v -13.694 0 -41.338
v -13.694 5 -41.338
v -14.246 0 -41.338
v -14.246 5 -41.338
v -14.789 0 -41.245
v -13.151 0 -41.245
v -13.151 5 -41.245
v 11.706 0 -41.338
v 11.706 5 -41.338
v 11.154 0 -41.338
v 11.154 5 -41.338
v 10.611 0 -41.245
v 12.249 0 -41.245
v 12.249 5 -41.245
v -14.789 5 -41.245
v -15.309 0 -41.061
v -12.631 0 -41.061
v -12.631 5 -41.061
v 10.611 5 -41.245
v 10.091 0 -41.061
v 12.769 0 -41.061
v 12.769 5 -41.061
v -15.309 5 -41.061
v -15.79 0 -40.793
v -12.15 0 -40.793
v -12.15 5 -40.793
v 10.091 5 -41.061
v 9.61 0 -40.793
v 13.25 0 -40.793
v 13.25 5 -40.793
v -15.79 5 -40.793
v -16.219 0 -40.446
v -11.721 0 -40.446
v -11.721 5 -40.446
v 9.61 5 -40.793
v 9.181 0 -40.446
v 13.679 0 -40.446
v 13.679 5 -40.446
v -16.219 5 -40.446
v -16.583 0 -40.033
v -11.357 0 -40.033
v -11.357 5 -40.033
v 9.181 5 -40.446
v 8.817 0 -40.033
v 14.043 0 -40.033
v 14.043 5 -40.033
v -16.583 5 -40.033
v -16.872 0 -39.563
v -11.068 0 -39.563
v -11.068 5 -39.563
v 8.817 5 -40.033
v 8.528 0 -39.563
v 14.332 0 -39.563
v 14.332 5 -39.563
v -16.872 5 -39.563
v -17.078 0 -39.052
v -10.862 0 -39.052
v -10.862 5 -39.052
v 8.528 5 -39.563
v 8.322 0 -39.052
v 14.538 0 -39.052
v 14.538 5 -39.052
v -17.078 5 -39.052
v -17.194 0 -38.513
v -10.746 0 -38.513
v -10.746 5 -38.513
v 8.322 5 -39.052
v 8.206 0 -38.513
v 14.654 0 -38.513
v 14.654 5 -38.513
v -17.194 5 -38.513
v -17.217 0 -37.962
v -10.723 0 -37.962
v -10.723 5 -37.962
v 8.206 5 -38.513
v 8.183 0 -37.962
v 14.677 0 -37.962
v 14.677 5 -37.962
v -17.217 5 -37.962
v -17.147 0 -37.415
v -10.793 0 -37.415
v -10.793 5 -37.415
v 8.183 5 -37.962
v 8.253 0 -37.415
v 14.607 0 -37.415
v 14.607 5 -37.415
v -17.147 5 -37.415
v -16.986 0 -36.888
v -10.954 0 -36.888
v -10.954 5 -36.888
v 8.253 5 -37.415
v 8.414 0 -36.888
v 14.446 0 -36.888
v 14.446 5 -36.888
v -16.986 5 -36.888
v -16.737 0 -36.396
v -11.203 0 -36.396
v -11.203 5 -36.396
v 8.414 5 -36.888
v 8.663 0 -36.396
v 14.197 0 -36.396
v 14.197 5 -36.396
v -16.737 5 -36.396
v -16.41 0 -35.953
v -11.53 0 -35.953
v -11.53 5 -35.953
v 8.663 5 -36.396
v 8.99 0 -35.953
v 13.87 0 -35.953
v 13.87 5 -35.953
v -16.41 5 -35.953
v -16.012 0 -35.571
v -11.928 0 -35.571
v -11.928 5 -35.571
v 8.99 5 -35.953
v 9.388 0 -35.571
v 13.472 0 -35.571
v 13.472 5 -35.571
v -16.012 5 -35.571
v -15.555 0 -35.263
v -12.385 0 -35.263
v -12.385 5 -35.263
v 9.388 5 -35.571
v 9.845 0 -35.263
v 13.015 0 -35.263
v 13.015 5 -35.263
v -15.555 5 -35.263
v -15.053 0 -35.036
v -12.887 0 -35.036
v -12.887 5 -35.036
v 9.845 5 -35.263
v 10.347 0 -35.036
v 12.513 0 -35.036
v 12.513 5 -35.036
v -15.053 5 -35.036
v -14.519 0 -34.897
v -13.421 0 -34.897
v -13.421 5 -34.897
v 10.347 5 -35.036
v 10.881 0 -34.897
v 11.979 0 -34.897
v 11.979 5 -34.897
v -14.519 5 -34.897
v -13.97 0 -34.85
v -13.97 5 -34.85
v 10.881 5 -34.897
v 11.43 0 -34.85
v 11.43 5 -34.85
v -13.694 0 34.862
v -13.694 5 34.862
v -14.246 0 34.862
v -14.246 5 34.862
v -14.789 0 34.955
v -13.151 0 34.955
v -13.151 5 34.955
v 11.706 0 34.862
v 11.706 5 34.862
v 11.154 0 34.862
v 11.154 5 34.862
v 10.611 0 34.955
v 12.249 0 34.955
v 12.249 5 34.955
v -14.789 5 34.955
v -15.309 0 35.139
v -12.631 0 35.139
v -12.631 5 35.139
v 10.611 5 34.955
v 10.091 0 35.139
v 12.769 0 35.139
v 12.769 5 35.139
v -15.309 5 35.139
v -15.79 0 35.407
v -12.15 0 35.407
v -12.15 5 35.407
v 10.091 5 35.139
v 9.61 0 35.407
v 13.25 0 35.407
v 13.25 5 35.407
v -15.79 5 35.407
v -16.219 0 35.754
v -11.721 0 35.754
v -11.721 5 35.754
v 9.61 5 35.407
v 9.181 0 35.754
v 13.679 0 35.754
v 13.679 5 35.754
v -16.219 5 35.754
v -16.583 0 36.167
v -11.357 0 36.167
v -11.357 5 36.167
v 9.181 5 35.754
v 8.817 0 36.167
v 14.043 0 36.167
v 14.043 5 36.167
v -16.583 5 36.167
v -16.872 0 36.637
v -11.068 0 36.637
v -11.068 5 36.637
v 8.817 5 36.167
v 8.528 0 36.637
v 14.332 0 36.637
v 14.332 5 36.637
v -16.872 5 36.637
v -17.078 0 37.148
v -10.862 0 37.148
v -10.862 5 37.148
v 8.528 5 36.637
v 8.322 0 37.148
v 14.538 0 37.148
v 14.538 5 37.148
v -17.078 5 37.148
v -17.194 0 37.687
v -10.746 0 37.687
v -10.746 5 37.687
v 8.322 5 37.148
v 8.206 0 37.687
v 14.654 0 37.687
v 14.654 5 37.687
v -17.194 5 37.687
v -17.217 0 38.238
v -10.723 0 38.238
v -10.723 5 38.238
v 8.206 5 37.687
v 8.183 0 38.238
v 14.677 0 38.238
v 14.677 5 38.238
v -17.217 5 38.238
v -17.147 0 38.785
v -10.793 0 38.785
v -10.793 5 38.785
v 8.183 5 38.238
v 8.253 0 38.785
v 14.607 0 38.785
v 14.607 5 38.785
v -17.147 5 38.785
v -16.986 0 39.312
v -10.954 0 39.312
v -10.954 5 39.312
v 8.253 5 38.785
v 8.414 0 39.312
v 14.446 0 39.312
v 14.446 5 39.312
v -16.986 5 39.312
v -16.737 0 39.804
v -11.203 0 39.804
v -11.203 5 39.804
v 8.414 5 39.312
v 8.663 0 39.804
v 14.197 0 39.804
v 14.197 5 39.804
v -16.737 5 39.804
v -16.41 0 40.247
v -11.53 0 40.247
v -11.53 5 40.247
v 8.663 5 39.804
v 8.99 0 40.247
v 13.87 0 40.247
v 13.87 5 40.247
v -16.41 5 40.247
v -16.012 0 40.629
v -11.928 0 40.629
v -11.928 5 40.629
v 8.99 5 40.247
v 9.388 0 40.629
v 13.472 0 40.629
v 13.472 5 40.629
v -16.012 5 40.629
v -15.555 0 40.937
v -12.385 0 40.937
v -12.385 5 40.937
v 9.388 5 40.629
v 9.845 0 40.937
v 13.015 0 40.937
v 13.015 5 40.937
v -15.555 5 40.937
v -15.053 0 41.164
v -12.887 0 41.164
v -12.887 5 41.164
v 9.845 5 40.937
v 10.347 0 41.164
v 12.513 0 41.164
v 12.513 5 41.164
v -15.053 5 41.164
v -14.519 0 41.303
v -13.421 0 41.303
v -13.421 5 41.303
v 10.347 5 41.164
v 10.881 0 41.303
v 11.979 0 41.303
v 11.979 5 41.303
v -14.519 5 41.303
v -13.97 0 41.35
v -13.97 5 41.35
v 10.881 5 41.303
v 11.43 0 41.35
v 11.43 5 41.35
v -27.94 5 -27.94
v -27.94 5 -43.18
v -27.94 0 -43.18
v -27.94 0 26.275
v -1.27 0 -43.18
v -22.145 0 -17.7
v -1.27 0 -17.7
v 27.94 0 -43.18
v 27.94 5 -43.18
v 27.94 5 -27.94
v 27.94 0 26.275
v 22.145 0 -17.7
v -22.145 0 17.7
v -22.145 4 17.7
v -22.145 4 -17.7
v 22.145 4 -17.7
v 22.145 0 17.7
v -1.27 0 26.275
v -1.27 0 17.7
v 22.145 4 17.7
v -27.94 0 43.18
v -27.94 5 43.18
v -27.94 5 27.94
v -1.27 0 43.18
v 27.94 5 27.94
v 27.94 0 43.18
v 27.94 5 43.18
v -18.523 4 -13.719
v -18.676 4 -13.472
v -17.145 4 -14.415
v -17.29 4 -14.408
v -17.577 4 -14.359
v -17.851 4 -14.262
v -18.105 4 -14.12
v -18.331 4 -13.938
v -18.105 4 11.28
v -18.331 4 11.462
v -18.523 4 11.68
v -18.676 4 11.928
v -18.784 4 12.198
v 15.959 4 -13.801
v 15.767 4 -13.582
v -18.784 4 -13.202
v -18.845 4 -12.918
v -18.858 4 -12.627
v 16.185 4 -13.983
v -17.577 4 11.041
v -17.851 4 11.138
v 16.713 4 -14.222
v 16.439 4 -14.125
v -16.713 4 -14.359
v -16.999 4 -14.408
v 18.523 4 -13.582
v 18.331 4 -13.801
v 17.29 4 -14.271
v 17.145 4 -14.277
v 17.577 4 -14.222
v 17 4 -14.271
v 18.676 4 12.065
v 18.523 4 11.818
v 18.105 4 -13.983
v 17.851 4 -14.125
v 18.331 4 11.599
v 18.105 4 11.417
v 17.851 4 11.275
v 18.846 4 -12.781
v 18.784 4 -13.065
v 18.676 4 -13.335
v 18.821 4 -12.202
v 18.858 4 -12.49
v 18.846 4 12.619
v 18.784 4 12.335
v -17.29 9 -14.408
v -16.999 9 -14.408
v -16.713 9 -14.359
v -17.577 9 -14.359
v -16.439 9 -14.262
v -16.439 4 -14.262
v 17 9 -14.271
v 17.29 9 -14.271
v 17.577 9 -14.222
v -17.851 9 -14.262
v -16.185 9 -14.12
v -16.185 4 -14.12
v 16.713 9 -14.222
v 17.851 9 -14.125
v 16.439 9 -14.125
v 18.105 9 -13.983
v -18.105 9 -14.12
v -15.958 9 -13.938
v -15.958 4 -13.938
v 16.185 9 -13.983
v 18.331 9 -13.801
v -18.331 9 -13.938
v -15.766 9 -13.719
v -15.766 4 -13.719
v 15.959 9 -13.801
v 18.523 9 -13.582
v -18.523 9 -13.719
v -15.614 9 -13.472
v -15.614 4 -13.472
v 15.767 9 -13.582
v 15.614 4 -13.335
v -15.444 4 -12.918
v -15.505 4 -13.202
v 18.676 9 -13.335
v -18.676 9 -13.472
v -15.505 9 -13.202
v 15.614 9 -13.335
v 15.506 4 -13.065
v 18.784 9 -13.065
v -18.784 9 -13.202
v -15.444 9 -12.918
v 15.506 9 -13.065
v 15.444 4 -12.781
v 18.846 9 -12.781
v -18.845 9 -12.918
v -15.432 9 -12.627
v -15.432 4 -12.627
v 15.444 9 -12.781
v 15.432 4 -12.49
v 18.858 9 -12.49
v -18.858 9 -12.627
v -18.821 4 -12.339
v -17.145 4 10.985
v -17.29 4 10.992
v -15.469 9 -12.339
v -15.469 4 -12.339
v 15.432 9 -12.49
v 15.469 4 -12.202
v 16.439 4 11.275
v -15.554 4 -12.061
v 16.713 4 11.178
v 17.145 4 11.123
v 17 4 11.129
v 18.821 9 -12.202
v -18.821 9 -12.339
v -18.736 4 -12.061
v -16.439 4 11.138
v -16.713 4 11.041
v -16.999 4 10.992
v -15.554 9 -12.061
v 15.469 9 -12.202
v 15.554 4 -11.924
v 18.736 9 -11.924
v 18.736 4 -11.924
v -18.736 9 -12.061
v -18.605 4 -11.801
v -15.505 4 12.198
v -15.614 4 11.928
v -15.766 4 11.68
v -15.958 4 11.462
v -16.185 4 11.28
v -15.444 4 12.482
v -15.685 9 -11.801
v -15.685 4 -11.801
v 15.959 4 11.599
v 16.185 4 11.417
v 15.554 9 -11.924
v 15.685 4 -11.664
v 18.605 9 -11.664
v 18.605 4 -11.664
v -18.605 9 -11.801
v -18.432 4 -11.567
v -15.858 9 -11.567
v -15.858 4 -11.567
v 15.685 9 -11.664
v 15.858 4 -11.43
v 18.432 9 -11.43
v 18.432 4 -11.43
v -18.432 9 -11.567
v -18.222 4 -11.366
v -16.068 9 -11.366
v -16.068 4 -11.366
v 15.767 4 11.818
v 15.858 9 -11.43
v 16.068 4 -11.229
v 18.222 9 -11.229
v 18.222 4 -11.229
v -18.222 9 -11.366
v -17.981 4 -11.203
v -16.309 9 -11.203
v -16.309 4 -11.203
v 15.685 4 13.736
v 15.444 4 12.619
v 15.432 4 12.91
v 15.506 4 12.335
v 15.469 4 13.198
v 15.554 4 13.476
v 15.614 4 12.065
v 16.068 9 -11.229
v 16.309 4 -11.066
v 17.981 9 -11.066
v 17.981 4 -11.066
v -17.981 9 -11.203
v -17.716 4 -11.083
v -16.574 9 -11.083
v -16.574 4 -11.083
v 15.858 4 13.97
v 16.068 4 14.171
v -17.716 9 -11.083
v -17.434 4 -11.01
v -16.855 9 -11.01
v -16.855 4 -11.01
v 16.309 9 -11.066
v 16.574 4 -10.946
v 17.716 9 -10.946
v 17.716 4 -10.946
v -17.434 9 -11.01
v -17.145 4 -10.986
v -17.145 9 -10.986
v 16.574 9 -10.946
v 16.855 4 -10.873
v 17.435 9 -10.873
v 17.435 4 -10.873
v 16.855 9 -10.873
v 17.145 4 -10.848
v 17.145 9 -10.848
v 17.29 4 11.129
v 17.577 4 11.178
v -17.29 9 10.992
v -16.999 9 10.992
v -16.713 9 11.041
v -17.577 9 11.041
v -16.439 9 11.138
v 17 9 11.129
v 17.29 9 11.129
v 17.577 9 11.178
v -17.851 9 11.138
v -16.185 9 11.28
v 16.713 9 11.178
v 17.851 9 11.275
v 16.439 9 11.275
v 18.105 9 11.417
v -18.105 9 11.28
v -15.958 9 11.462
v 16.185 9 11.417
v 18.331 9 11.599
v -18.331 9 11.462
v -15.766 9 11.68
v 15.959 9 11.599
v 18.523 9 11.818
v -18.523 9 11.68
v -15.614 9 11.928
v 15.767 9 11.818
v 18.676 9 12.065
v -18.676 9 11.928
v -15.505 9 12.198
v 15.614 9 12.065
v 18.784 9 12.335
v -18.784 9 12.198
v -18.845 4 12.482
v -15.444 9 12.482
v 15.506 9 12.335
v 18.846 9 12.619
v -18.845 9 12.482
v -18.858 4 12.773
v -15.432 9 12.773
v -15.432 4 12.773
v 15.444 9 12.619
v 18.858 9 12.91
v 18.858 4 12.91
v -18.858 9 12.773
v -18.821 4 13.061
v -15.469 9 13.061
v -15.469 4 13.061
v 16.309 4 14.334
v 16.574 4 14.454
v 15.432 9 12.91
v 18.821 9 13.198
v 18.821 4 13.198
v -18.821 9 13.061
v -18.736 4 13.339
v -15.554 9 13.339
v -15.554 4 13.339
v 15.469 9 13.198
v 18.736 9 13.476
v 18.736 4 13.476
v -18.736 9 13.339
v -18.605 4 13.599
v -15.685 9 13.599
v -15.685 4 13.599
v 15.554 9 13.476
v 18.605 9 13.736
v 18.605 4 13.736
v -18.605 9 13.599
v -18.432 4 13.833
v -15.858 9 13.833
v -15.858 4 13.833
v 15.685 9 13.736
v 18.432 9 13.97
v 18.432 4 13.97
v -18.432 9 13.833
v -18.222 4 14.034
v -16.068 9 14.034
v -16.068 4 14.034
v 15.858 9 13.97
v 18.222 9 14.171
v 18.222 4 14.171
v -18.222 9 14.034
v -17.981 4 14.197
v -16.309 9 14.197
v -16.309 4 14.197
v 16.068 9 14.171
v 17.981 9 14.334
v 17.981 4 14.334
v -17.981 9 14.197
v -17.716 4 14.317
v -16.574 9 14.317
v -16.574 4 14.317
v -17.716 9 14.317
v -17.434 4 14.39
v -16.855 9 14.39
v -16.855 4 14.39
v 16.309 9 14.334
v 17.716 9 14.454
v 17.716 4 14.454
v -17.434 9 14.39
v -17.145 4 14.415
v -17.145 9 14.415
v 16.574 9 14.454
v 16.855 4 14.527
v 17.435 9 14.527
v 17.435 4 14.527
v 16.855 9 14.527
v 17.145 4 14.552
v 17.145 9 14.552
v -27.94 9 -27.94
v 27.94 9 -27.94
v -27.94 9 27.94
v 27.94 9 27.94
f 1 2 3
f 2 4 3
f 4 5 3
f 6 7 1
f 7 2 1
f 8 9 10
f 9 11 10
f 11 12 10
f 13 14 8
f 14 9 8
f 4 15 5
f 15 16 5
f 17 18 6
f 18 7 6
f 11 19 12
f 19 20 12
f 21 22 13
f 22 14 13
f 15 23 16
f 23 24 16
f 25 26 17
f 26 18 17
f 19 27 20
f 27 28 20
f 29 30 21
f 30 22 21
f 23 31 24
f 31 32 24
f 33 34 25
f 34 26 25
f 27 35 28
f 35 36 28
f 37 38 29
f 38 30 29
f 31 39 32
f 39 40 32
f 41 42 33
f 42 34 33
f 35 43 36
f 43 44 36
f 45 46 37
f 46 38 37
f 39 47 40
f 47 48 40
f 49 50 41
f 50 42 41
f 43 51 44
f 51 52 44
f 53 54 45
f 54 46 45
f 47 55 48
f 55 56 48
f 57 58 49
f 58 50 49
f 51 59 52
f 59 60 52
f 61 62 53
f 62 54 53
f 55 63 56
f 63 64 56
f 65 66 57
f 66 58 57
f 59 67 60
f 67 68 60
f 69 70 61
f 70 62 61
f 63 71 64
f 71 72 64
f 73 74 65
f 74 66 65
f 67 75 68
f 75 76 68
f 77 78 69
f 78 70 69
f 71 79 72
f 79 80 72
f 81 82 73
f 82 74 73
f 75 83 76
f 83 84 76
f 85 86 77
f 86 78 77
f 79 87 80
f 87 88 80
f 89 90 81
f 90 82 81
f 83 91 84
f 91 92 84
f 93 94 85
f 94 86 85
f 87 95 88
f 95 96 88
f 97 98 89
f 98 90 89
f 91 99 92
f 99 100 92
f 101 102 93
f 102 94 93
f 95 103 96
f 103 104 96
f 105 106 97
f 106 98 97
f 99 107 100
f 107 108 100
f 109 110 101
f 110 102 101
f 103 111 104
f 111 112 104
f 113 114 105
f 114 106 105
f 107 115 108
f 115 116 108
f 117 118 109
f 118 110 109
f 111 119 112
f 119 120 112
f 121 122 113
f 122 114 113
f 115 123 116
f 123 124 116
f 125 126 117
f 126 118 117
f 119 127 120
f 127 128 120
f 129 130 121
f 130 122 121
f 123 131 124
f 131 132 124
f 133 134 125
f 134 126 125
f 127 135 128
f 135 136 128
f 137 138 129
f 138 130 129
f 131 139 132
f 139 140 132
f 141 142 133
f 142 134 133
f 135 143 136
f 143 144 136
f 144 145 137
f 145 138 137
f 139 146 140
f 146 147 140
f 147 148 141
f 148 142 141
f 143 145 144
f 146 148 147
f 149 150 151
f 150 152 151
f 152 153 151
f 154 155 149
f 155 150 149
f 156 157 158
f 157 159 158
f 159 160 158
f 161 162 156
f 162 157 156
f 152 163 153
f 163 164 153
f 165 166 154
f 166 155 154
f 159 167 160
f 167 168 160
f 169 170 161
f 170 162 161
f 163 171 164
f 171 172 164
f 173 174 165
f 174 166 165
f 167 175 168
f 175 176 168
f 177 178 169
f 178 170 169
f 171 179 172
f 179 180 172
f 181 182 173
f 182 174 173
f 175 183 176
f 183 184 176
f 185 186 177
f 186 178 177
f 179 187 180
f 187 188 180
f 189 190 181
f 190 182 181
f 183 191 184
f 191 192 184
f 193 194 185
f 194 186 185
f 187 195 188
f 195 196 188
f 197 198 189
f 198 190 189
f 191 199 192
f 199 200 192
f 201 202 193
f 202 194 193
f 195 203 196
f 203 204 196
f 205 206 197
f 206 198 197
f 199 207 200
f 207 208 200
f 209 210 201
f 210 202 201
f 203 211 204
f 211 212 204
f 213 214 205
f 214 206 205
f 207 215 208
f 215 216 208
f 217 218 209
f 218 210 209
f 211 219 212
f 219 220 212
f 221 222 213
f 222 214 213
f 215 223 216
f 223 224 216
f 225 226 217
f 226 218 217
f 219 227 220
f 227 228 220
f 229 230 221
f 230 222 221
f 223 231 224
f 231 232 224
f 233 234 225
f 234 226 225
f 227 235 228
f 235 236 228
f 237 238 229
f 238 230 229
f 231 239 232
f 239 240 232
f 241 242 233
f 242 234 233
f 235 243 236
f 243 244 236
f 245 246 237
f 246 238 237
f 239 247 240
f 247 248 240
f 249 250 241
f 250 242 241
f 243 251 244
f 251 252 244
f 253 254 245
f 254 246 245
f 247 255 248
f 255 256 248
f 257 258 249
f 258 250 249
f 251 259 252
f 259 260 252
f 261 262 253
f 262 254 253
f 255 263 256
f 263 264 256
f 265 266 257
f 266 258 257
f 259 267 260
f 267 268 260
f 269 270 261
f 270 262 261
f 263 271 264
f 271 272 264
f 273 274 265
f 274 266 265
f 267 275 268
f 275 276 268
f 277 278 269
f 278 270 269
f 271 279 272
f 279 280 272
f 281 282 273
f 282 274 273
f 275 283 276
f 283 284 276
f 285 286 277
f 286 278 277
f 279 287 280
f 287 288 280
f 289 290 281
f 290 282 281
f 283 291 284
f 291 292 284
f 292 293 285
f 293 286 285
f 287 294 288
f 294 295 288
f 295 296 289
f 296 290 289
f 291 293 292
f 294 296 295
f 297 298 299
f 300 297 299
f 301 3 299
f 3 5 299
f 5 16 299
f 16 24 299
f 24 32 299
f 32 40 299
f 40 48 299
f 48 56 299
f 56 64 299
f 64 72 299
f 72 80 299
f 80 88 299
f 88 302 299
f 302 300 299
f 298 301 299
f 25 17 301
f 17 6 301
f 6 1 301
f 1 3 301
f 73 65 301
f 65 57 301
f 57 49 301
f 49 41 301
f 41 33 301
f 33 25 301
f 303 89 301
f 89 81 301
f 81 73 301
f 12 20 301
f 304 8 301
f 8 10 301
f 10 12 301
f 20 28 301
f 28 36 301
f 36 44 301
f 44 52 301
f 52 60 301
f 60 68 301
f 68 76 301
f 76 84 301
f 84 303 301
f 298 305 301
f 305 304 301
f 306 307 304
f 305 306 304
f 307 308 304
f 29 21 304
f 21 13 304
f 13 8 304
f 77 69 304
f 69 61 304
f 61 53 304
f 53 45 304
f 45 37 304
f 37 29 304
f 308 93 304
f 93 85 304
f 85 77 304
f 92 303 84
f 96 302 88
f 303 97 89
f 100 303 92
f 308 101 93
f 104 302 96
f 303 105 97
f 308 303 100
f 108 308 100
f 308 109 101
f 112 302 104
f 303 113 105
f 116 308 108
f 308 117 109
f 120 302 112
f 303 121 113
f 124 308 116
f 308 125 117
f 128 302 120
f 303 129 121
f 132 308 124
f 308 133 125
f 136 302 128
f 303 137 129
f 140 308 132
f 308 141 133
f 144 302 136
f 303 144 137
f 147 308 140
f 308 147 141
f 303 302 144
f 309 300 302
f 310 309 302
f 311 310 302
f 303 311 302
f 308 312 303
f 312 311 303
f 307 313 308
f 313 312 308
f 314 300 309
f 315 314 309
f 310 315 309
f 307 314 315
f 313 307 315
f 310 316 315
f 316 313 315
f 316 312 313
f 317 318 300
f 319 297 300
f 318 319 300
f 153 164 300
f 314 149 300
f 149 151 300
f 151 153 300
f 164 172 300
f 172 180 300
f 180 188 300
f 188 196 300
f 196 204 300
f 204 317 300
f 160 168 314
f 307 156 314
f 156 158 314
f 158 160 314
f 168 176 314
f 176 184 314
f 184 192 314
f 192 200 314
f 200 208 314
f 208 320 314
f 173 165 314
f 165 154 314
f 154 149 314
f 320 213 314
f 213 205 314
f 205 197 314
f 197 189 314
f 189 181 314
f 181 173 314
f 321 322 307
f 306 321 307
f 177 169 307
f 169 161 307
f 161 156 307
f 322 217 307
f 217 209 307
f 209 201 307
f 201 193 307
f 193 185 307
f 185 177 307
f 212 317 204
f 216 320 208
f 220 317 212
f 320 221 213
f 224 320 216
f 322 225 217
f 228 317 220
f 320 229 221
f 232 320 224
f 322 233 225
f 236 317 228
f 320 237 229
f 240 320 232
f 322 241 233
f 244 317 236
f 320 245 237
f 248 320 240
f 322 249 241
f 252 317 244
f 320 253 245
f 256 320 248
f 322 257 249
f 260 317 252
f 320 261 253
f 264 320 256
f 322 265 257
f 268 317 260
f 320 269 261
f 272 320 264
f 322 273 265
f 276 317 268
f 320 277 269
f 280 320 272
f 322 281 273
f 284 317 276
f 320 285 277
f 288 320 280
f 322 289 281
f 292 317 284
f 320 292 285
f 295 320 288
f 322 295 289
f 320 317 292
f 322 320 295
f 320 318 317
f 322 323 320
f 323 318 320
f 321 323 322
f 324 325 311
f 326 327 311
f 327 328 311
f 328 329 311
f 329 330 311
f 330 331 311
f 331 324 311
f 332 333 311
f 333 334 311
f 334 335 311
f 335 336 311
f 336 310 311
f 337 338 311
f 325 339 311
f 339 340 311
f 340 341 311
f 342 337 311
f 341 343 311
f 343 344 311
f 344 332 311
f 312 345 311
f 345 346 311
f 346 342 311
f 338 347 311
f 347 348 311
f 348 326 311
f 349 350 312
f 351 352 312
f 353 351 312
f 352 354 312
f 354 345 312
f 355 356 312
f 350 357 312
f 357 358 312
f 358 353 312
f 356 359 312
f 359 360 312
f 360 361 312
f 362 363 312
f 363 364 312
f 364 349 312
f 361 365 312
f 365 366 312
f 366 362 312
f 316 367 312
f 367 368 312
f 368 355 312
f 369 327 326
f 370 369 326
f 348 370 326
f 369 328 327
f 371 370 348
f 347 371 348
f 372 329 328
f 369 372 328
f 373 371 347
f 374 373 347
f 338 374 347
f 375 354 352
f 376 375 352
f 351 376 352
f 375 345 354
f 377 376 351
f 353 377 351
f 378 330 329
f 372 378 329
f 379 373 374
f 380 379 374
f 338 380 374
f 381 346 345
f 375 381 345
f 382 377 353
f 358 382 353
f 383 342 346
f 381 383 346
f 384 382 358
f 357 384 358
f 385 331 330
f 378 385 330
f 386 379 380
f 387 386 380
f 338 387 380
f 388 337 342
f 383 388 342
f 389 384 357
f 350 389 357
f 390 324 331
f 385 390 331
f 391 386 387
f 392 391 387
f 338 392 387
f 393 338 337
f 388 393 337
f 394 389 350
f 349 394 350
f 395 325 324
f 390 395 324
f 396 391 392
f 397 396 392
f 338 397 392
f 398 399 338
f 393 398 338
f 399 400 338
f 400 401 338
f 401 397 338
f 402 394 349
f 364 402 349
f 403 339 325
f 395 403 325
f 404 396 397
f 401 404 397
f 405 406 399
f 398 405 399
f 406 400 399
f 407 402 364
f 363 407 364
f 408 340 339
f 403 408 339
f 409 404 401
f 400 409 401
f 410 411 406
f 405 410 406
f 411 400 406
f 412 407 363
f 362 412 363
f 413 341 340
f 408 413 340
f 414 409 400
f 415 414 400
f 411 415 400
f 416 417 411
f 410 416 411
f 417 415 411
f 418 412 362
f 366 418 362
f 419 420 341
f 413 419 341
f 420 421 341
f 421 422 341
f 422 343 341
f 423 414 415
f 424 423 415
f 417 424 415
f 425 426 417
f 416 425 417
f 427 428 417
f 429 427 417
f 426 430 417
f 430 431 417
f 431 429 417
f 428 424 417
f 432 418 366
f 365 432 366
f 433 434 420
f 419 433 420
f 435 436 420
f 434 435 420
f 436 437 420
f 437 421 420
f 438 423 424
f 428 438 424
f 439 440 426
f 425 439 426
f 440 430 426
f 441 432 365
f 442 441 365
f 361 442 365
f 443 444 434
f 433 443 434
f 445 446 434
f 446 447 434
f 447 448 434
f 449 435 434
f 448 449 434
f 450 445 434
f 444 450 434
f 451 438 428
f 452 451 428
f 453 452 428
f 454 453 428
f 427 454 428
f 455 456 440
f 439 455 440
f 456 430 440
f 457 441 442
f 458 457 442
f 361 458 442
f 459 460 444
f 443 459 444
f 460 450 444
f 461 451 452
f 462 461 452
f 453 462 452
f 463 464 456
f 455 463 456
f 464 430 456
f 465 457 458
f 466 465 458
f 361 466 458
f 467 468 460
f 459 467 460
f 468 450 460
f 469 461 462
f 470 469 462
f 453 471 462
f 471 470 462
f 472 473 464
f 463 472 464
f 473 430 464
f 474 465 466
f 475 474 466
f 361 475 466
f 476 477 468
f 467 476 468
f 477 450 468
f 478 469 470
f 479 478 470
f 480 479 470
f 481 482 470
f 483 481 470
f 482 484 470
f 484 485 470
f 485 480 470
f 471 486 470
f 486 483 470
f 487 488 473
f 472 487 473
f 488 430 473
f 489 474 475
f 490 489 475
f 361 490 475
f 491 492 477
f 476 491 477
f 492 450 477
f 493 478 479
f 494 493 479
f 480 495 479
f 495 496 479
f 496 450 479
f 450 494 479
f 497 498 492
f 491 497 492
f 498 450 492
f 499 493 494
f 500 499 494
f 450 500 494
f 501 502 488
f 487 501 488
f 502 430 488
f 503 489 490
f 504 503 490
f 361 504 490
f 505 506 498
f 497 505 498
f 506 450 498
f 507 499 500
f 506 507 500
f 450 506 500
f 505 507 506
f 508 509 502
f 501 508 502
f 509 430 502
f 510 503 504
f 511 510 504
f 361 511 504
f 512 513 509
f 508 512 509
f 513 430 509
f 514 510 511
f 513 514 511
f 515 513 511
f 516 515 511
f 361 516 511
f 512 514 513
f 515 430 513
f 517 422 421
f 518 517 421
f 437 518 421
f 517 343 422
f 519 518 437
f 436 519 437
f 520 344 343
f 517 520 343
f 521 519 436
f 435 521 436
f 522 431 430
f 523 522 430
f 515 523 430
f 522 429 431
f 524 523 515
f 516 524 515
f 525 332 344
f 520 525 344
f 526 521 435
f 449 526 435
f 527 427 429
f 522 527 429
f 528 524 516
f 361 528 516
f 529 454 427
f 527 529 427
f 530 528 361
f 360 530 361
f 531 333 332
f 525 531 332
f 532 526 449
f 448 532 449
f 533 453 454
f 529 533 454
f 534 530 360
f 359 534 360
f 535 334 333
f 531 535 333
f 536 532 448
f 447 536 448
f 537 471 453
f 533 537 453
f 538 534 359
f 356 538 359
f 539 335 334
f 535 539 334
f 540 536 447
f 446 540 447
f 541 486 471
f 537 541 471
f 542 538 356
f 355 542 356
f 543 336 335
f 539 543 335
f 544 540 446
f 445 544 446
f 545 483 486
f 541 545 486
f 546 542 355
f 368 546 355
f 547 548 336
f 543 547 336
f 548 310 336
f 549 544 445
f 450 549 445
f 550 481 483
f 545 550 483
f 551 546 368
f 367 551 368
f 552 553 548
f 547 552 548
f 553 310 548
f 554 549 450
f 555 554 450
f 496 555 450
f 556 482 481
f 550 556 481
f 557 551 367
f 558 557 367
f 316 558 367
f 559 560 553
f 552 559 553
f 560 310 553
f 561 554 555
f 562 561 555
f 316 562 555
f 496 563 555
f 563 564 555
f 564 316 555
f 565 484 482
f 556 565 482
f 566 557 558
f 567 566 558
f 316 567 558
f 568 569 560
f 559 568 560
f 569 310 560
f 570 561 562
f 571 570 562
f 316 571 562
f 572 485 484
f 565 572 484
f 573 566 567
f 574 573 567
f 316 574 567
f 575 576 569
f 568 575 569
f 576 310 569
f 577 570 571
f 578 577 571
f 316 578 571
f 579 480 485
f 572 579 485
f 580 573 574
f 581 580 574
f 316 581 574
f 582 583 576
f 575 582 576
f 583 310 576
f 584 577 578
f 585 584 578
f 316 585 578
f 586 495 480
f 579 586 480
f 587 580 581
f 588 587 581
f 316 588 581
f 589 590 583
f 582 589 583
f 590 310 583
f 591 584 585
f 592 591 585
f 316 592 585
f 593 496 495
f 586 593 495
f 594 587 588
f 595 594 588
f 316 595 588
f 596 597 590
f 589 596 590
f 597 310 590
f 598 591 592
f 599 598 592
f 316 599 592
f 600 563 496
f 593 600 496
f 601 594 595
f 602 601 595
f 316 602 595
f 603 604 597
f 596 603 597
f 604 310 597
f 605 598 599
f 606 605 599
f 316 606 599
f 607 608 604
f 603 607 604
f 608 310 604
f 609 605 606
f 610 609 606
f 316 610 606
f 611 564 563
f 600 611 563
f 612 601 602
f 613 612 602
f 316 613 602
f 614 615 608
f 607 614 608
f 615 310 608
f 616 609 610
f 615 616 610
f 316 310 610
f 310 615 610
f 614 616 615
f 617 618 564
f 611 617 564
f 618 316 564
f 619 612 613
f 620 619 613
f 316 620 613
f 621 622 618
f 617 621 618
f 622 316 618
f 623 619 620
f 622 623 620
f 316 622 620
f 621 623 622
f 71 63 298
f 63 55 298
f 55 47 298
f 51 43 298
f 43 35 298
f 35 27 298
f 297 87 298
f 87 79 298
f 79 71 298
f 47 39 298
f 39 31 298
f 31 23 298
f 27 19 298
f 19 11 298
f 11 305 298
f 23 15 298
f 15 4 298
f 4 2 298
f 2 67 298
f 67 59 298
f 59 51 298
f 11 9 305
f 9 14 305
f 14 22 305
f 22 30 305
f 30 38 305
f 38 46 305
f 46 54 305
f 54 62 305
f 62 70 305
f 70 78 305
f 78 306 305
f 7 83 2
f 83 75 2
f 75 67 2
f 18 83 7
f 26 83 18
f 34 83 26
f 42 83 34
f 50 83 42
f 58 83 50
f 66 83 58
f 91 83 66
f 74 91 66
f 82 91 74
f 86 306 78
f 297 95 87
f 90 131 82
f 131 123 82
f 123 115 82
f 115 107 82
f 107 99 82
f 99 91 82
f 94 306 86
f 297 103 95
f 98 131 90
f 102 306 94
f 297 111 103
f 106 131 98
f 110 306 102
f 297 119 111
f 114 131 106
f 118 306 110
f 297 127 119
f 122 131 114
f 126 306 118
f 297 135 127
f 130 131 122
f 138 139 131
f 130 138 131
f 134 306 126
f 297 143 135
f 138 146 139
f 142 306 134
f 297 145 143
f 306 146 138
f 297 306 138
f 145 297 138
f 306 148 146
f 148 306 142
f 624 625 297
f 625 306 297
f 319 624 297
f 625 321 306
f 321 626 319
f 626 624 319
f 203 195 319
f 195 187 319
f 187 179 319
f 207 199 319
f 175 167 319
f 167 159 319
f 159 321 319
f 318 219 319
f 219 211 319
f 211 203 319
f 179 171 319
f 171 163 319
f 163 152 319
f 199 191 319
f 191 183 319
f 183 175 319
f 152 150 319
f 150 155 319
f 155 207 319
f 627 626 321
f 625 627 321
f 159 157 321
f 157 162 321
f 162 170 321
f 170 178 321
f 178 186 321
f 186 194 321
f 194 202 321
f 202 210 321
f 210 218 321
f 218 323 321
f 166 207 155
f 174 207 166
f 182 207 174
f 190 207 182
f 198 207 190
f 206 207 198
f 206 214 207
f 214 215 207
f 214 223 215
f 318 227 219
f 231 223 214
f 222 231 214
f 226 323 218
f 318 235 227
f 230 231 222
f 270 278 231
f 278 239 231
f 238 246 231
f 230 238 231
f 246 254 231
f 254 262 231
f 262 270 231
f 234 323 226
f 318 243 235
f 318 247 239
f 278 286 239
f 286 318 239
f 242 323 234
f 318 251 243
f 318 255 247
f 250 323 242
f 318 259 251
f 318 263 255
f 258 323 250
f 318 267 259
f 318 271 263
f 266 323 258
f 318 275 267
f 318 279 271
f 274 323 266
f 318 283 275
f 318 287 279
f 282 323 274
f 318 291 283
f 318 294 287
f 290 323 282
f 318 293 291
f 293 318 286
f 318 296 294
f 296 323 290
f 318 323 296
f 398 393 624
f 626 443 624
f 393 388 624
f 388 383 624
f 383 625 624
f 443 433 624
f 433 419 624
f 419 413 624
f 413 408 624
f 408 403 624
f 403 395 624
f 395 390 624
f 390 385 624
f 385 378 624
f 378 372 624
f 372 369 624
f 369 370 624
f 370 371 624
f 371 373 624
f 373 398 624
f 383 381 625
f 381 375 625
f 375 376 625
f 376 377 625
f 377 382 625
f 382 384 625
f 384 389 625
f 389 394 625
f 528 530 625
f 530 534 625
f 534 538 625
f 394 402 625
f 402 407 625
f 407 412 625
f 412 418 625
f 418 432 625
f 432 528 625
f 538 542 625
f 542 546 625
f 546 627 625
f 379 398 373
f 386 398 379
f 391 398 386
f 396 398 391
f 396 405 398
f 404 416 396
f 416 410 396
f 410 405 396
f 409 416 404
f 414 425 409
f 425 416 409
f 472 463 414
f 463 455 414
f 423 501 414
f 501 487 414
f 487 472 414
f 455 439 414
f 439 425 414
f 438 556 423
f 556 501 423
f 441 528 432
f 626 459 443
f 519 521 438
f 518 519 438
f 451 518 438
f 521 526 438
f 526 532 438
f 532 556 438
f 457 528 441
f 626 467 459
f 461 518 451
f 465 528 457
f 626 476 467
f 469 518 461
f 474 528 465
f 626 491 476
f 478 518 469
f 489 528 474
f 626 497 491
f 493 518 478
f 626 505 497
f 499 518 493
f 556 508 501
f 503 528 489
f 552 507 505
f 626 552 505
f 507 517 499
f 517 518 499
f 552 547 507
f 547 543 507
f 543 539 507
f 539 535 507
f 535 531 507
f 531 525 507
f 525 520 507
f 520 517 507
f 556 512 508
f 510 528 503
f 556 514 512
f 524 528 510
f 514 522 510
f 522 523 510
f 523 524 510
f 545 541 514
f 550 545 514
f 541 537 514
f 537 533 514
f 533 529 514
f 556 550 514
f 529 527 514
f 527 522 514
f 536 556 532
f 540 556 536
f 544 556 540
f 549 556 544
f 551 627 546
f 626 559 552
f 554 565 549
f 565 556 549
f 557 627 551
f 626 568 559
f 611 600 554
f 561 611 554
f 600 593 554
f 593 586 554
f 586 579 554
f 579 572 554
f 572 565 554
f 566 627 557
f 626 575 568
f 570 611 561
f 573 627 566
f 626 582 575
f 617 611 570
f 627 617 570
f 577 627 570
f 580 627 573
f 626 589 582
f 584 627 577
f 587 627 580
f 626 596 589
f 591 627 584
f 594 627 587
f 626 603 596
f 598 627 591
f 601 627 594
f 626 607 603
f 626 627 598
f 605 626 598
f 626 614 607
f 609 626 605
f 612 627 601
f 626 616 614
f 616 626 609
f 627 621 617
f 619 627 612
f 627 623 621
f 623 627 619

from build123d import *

# Parameters (mm, degrees)
SKETCH1_W                          = 55.88
SKETCH1_H                          = 55.88
BOSS_EXTRUDE1_DEPTH                = 9
F_1_4_0_25_CLEARANCE_DOWEL_HOLE1_D = 3.429
SKETCH4_W                          = 44.289451808
SKETCH4_H                          = 35.4
CUT_EXTRUDE1_DEPTH                 = 4
SKETCH5_W                          = 55.88
SKETCH5_H                          = 5
BOSS_EXTRUDE2_DEPTH                = 15.24
SKETCH6_W                          = 55.88
SKETCH6_H                          = 5
BOSS_EXTRUDE3_DEPTH                = 15.24
F_1_4_0_25_CLEARANCE_DOWEL_HOLE2_D = 6.499999954


with BuildPart() as part:
    # Sketch1 → Boss-Extrude1 (new body)
    with BuildSketch(Plane(origin=(0, 0, 0), x_dir=(1, 0, 0), z_dir=(0, 1, 0))):
        Rectangle(SKETCH1_W, SKETCH1_H)
    extrude(amount=BOSS_EXTRUDE1_DEPTH)

    # 1/4 (0.25) Clearance Dowel Hole1 (through all)
    with Locations(Plane(origin=(0, 9, 0), x_dir=(1, 0, 0), z_dir=(0, 1, 0))):
        with Locations((-17.144725904, -12.7), (-17.144725904, 12.7), (17.145, -12.837103678), (17.145, 12.562896322)):
            Hole(F_1_4_0_25_CLEARANCE_DOWEL_HOLE1_D / 2)

    # Sketch4 → Cut-Extrude1 (cut)
    with BuildSketch(Plane.XZ):
        Rectangle(SKETCH4_W, SKETCH4_H)
    extrude(amount=-CUT_EXTRUDE1_DEPTH, mode=Mode.SUBTRACT)

    # Sketch5 → Boss-Extrude2 (add)
    with BuildSketch(Plane.XY.offset(27.94)):
        with Locations((0, 2.5)):
            Rectangle(SKETCH5_W, SKETCH5_H)
    extrude(amount=BOSS_EXTRUDE2_DEPTH)

    # Sketch6 → Boss-Extrude3 (add)
    with BuildSketch(Plane(origin=(0, 0, -27.94), x_dir=(-1, 0, 0), z_dir=(0, 0, -1))):
        with Locations((0, 2.5)):
            Rectangle(SKETCH6_W, SKETCH6_H)
    extrude(amount=BOSS_EXTRUDE3_DEPTH)

    # 1/4 (0.25) Clearance Dowel Hole2 (through all)
    with Locations(Plane(origin=(0, 5, 0), x_dir=(1, 0, 0), z_dir=(0, 1, 0))):
        with Locations((11.43, 38.1), (-13.97, 38.1), (-13.97, -38.1), (11.43, -38.1)):
            Hole(F_1_4_0_25_CLEARANCE_DOWEL_HOLE2_D / 2)


solid = part.part
